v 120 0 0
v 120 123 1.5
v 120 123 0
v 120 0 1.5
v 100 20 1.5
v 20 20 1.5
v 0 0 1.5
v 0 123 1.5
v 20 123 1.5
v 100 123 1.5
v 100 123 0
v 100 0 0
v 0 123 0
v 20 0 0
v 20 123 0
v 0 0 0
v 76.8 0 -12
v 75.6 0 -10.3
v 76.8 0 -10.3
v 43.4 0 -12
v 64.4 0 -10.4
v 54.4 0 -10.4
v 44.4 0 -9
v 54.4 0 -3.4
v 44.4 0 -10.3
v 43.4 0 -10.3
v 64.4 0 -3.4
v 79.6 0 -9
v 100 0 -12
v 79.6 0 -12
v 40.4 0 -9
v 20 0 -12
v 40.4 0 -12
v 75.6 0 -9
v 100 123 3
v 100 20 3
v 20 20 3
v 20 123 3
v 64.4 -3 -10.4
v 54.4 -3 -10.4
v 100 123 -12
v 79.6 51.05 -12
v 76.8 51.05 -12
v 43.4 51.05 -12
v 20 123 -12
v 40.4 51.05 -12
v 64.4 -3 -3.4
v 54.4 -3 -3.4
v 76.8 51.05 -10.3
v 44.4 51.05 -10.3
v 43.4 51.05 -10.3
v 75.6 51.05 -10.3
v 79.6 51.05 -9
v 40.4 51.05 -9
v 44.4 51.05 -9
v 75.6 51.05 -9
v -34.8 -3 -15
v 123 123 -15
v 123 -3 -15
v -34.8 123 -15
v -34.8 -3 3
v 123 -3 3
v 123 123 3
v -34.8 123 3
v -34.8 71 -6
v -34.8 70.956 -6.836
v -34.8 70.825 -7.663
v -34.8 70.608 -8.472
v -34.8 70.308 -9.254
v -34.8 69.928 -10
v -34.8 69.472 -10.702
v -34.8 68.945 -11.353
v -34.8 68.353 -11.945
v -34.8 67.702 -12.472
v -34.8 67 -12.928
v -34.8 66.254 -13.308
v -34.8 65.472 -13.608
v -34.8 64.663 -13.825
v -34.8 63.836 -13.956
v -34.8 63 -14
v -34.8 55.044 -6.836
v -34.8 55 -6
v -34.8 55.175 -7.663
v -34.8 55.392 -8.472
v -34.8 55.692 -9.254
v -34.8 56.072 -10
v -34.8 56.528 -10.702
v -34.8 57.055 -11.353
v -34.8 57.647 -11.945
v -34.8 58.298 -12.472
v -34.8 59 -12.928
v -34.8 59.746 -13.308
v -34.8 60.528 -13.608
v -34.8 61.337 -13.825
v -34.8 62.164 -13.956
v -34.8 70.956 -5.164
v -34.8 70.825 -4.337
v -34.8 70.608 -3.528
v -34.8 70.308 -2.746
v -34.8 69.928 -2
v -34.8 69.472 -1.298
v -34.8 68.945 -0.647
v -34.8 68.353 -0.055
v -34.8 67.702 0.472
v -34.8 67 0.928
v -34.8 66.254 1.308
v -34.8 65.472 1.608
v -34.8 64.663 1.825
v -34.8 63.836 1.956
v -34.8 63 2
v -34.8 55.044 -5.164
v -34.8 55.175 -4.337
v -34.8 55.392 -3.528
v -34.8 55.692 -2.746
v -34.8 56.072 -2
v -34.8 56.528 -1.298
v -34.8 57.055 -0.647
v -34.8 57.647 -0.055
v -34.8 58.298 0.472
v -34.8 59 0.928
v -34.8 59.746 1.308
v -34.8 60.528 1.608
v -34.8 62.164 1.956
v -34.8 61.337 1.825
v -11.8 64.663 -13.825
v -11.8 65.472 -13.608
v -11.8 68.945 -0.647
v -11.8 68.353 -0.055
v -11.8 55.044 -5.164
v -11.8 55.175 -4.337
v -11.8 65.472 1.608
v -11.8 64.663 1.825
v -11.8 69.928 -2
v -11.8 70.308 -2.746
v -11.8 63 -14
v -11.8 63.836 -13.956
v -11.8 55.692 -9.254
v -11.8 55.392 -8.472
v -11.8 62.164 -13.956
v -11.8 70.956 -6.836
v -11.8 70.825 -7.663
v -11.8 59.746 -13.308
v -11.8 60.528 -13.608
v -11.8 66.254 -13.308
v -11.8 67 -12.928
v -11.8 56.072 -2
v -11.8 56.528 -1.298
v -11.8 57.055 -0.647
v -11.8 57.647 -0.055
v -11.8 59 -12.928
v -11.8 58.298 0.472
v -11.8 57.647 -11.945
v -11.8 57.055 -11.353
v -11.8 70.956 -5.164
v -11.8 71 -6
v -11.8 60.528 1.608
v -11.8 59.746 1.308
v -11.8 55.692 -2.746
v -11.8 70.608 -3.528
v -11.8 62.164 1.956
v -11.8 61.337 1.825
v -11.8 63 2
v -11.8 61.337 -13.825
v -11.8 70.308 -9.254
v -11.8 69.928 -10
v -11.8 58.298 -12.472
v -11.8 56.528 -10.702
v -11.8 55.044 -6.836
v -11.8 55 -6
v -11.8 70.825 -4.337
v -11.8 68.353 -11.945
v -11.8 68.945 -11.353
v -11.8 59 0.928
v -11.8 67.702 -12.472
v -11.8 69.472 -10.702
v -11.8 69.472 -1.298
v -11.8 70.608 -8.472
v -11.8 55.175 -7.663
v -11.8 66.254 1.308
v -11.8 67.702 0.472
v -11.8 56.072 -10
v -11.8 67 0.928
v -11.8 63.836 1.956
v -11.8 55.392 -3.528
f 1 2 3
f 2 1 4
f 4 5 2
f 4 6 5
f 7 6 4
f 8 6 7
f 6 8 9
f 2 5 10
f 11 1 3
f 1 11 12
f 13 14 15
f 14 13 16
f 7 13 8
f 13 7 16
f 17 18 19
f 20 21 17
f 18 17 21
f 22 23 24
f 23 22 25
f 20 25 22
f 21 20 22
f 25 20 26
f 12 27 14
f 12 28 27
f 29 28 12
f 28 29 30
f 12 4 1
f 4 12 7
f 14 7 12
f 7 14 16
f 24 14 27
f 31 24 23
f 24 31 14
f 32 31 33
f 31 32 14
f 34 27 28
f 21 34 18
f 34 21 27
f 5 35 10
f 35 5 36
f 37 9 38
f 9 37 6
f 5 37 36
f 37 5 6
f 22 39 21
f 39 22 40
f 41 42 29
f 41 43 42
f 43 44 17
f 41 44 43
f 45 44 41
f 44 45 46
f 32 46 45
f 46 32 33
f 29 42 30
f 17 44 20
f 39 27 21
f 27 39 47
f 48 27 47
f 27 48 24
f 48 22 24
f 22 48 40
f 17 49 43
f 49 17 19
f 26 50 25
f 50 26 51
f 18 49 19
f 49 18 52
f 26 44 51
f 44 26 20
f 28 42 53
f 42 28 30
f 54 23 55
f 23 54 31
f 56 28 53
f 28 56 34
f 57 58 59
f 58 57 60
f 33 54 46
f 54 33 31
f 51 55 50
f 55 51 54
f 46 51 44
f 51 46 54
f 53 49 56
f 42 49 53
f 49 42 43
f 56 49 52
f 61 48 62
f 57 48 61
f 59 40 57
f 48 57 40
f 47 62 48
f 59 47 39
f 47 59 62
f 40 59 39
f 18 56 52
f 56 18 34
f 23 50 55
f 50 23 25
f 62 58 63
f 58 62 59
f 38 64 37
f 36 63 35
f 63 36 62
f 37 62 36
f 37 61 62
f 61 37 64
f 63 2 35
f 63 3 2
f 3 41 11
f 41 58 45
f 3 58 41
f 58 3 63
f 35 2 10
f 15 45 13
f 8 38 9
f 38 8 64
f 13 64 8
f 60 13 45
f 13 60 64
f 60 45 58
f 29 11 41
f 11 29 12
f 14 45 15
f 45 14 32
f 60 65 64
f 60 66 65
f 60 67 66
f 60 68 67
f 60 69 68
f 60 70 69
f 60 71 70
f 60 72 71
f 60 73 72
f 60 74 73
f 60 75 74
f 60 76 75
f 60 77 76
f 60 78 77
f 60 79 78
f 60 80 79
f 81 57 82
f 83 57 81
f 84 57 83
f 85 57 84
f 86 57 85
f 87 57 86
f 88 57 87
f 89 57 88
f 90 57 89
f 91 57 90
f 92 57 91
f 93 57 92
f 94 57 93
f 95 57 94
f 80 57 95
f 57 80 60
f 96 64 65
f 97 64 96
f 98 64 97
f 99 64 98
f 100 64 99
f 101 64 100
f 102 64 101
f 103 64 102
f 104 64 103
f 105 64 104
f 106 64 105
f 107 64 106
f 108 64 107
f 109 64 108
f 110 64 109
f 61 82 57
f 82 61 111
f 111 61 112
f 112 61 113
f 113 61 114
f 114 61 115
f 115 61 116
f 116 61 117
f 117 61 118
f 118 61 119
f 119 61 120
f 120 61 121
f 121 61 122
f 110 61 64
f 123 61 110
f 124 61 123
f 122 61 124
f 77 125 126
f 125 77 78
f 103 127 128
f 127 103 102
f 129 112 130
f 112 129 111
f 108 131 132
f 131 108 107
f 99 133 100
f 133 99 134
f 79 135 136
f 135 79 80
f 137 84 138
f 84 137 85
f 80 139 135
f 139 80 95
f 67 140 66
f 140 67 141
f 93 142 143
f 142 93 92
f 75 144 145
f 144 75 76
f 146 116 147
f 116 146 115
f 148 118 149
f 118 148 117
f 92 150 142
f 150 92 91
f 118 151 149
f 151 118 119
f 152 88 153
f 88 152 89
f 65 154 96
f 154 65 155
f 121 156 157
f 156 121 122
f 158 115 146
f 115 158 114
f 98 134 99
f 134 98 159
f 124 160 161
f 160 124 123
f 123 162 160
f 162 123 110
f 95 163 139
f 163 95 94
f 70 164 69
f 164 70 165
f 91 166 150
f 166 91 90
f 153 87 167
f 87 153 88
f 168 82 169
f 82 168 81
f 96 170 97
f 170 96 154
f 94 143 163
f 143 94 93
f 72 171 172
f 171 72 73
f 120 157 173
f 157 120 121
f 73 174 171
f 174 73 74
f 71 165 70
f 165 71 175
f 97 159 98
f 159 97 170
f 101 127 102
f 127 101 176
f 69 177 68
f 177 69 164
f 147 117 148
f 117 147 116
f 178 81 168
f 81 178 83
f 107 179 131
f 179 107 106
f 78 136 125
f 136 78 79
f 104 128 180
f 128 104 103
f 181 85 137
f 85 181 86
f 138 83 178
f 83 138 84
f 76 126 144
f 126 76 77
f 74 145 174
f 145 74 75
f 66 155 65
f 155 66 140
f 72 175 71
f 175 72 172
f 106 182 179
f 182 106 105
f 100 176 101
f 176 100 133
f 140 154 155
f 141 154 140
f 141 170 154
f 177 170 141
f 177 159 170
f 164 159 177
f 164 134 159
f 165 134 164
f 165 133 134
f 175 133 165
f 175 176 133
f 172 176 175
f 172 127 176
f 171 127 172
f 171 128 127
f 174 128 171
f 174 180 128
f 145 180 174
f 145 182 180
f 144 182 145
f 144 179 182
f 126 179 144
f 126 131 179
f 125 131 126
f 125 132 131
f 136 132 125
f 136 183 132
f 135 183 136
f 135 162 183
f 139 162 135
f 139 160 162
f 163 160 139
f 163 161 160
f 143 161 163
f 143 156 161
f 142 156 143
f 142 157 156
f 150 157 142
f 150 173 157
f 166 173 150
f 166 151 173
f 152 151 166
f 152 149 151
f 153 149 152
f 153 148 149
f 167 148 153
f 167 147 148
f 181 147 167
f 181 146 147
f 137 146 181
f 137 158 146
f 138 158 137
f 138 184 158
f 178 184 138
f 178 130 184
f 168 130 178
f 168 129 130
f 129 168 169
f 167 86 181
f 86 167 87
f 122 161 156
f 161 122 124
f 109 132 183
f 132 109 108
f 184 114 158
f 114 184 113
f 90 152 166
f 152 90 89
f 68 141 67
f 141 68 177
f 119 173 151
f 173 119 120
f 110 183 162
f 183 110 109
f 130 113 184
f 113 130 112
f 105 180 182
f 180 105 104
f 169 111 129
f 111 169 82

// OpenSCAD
$fn=60;

module rf_antenna(){
    // RF Antenna board with dimensions 120x120x1.5
    // antenna is not perfectly centered, add 3 mm tolerance each side for any opening
    union(){
        cube([120,120,1.5]); // board
        translate([20,20,1.5])cube([80,80,6]); // antenna panel
    }
}


board_width = 33.2;
board_length = 53.3;
board_thickness = 1.6;

module r200_board(tol=0){
    translate([0,0,-tol])
    union(){
        difference(){
            // Board
            cube([board_width+2*tol, board_length+2*tol, board_thickness+2*tol]);
            // board mount hole cutout
            //translate([2.5,2.5,-1])cylinder(h=20, d=3);
        }
        // microUSB port
        translate([11,-20,board_thickness])
        cube([10,25,7]);
    }
}

margin = 3;
tolerance = 0.1;
board_side = 120;
inner_z = 12; //inner box open space height
wall_thickness = 4; // must be more than margin above


mount_d = 15.8 + 0.2; // 15.8 plus 0.2 for tolerance
mount_h = 2*31.8;     // height of the camera mount cutout
////////////

module r200_mount(){
    difference(){
    translate([-margin,-margin,-3])
    cube([board_width+2*margin,board_length+0.25*margin,6]);
    #r200_board(tolerance);
    translate([1,0,0])
    cube([board_width-2,board_length+3,15]);
    
    }
}


////////////////
union(){
    
difference(){
    // Main shell
    translate([-margin, -margin, -margin - inner_z])
    cube([board_side+2*margin, board_side+2*margin, 2*margin + inner_z]);
    
    union(){ // Antenna and board models
        rf_antenna();
        translate([0,60,0])
        rf_antenna();
        translate([60-board_width/2,0,-12])
        r200_board();
    }
    
    // hollow out remaining area
    translate([20,0,-inner_z])
    cube([board_side-40,board_side+10,inner_z]);
    
    // stand_mount
    translate([-mount_h/2,(board_side+2*margin)/2,-6])
    rotate([0,90,0])
    #cylinder(d = mount_d, 40, center=true);
}

//Add to the edge for mount

// R200 board mount
translate([60-board_width/2,0,-12])
    r200_mount();        
}

difference(){
    translate([-mount_h/2-margin,-margin,-margin-inner_z])
    #cube([mount_h/2,board_side+2*margin, 2*margin + inner_z]);
    // stand_mount
    translate([-mount_h/2,(board_side+2*margin)/2,-6])
    rotate([0,90,0])
    #cylinder(d = mount_d, 40, center=true);
}
//translate([-100,0,0])r200_mount();
